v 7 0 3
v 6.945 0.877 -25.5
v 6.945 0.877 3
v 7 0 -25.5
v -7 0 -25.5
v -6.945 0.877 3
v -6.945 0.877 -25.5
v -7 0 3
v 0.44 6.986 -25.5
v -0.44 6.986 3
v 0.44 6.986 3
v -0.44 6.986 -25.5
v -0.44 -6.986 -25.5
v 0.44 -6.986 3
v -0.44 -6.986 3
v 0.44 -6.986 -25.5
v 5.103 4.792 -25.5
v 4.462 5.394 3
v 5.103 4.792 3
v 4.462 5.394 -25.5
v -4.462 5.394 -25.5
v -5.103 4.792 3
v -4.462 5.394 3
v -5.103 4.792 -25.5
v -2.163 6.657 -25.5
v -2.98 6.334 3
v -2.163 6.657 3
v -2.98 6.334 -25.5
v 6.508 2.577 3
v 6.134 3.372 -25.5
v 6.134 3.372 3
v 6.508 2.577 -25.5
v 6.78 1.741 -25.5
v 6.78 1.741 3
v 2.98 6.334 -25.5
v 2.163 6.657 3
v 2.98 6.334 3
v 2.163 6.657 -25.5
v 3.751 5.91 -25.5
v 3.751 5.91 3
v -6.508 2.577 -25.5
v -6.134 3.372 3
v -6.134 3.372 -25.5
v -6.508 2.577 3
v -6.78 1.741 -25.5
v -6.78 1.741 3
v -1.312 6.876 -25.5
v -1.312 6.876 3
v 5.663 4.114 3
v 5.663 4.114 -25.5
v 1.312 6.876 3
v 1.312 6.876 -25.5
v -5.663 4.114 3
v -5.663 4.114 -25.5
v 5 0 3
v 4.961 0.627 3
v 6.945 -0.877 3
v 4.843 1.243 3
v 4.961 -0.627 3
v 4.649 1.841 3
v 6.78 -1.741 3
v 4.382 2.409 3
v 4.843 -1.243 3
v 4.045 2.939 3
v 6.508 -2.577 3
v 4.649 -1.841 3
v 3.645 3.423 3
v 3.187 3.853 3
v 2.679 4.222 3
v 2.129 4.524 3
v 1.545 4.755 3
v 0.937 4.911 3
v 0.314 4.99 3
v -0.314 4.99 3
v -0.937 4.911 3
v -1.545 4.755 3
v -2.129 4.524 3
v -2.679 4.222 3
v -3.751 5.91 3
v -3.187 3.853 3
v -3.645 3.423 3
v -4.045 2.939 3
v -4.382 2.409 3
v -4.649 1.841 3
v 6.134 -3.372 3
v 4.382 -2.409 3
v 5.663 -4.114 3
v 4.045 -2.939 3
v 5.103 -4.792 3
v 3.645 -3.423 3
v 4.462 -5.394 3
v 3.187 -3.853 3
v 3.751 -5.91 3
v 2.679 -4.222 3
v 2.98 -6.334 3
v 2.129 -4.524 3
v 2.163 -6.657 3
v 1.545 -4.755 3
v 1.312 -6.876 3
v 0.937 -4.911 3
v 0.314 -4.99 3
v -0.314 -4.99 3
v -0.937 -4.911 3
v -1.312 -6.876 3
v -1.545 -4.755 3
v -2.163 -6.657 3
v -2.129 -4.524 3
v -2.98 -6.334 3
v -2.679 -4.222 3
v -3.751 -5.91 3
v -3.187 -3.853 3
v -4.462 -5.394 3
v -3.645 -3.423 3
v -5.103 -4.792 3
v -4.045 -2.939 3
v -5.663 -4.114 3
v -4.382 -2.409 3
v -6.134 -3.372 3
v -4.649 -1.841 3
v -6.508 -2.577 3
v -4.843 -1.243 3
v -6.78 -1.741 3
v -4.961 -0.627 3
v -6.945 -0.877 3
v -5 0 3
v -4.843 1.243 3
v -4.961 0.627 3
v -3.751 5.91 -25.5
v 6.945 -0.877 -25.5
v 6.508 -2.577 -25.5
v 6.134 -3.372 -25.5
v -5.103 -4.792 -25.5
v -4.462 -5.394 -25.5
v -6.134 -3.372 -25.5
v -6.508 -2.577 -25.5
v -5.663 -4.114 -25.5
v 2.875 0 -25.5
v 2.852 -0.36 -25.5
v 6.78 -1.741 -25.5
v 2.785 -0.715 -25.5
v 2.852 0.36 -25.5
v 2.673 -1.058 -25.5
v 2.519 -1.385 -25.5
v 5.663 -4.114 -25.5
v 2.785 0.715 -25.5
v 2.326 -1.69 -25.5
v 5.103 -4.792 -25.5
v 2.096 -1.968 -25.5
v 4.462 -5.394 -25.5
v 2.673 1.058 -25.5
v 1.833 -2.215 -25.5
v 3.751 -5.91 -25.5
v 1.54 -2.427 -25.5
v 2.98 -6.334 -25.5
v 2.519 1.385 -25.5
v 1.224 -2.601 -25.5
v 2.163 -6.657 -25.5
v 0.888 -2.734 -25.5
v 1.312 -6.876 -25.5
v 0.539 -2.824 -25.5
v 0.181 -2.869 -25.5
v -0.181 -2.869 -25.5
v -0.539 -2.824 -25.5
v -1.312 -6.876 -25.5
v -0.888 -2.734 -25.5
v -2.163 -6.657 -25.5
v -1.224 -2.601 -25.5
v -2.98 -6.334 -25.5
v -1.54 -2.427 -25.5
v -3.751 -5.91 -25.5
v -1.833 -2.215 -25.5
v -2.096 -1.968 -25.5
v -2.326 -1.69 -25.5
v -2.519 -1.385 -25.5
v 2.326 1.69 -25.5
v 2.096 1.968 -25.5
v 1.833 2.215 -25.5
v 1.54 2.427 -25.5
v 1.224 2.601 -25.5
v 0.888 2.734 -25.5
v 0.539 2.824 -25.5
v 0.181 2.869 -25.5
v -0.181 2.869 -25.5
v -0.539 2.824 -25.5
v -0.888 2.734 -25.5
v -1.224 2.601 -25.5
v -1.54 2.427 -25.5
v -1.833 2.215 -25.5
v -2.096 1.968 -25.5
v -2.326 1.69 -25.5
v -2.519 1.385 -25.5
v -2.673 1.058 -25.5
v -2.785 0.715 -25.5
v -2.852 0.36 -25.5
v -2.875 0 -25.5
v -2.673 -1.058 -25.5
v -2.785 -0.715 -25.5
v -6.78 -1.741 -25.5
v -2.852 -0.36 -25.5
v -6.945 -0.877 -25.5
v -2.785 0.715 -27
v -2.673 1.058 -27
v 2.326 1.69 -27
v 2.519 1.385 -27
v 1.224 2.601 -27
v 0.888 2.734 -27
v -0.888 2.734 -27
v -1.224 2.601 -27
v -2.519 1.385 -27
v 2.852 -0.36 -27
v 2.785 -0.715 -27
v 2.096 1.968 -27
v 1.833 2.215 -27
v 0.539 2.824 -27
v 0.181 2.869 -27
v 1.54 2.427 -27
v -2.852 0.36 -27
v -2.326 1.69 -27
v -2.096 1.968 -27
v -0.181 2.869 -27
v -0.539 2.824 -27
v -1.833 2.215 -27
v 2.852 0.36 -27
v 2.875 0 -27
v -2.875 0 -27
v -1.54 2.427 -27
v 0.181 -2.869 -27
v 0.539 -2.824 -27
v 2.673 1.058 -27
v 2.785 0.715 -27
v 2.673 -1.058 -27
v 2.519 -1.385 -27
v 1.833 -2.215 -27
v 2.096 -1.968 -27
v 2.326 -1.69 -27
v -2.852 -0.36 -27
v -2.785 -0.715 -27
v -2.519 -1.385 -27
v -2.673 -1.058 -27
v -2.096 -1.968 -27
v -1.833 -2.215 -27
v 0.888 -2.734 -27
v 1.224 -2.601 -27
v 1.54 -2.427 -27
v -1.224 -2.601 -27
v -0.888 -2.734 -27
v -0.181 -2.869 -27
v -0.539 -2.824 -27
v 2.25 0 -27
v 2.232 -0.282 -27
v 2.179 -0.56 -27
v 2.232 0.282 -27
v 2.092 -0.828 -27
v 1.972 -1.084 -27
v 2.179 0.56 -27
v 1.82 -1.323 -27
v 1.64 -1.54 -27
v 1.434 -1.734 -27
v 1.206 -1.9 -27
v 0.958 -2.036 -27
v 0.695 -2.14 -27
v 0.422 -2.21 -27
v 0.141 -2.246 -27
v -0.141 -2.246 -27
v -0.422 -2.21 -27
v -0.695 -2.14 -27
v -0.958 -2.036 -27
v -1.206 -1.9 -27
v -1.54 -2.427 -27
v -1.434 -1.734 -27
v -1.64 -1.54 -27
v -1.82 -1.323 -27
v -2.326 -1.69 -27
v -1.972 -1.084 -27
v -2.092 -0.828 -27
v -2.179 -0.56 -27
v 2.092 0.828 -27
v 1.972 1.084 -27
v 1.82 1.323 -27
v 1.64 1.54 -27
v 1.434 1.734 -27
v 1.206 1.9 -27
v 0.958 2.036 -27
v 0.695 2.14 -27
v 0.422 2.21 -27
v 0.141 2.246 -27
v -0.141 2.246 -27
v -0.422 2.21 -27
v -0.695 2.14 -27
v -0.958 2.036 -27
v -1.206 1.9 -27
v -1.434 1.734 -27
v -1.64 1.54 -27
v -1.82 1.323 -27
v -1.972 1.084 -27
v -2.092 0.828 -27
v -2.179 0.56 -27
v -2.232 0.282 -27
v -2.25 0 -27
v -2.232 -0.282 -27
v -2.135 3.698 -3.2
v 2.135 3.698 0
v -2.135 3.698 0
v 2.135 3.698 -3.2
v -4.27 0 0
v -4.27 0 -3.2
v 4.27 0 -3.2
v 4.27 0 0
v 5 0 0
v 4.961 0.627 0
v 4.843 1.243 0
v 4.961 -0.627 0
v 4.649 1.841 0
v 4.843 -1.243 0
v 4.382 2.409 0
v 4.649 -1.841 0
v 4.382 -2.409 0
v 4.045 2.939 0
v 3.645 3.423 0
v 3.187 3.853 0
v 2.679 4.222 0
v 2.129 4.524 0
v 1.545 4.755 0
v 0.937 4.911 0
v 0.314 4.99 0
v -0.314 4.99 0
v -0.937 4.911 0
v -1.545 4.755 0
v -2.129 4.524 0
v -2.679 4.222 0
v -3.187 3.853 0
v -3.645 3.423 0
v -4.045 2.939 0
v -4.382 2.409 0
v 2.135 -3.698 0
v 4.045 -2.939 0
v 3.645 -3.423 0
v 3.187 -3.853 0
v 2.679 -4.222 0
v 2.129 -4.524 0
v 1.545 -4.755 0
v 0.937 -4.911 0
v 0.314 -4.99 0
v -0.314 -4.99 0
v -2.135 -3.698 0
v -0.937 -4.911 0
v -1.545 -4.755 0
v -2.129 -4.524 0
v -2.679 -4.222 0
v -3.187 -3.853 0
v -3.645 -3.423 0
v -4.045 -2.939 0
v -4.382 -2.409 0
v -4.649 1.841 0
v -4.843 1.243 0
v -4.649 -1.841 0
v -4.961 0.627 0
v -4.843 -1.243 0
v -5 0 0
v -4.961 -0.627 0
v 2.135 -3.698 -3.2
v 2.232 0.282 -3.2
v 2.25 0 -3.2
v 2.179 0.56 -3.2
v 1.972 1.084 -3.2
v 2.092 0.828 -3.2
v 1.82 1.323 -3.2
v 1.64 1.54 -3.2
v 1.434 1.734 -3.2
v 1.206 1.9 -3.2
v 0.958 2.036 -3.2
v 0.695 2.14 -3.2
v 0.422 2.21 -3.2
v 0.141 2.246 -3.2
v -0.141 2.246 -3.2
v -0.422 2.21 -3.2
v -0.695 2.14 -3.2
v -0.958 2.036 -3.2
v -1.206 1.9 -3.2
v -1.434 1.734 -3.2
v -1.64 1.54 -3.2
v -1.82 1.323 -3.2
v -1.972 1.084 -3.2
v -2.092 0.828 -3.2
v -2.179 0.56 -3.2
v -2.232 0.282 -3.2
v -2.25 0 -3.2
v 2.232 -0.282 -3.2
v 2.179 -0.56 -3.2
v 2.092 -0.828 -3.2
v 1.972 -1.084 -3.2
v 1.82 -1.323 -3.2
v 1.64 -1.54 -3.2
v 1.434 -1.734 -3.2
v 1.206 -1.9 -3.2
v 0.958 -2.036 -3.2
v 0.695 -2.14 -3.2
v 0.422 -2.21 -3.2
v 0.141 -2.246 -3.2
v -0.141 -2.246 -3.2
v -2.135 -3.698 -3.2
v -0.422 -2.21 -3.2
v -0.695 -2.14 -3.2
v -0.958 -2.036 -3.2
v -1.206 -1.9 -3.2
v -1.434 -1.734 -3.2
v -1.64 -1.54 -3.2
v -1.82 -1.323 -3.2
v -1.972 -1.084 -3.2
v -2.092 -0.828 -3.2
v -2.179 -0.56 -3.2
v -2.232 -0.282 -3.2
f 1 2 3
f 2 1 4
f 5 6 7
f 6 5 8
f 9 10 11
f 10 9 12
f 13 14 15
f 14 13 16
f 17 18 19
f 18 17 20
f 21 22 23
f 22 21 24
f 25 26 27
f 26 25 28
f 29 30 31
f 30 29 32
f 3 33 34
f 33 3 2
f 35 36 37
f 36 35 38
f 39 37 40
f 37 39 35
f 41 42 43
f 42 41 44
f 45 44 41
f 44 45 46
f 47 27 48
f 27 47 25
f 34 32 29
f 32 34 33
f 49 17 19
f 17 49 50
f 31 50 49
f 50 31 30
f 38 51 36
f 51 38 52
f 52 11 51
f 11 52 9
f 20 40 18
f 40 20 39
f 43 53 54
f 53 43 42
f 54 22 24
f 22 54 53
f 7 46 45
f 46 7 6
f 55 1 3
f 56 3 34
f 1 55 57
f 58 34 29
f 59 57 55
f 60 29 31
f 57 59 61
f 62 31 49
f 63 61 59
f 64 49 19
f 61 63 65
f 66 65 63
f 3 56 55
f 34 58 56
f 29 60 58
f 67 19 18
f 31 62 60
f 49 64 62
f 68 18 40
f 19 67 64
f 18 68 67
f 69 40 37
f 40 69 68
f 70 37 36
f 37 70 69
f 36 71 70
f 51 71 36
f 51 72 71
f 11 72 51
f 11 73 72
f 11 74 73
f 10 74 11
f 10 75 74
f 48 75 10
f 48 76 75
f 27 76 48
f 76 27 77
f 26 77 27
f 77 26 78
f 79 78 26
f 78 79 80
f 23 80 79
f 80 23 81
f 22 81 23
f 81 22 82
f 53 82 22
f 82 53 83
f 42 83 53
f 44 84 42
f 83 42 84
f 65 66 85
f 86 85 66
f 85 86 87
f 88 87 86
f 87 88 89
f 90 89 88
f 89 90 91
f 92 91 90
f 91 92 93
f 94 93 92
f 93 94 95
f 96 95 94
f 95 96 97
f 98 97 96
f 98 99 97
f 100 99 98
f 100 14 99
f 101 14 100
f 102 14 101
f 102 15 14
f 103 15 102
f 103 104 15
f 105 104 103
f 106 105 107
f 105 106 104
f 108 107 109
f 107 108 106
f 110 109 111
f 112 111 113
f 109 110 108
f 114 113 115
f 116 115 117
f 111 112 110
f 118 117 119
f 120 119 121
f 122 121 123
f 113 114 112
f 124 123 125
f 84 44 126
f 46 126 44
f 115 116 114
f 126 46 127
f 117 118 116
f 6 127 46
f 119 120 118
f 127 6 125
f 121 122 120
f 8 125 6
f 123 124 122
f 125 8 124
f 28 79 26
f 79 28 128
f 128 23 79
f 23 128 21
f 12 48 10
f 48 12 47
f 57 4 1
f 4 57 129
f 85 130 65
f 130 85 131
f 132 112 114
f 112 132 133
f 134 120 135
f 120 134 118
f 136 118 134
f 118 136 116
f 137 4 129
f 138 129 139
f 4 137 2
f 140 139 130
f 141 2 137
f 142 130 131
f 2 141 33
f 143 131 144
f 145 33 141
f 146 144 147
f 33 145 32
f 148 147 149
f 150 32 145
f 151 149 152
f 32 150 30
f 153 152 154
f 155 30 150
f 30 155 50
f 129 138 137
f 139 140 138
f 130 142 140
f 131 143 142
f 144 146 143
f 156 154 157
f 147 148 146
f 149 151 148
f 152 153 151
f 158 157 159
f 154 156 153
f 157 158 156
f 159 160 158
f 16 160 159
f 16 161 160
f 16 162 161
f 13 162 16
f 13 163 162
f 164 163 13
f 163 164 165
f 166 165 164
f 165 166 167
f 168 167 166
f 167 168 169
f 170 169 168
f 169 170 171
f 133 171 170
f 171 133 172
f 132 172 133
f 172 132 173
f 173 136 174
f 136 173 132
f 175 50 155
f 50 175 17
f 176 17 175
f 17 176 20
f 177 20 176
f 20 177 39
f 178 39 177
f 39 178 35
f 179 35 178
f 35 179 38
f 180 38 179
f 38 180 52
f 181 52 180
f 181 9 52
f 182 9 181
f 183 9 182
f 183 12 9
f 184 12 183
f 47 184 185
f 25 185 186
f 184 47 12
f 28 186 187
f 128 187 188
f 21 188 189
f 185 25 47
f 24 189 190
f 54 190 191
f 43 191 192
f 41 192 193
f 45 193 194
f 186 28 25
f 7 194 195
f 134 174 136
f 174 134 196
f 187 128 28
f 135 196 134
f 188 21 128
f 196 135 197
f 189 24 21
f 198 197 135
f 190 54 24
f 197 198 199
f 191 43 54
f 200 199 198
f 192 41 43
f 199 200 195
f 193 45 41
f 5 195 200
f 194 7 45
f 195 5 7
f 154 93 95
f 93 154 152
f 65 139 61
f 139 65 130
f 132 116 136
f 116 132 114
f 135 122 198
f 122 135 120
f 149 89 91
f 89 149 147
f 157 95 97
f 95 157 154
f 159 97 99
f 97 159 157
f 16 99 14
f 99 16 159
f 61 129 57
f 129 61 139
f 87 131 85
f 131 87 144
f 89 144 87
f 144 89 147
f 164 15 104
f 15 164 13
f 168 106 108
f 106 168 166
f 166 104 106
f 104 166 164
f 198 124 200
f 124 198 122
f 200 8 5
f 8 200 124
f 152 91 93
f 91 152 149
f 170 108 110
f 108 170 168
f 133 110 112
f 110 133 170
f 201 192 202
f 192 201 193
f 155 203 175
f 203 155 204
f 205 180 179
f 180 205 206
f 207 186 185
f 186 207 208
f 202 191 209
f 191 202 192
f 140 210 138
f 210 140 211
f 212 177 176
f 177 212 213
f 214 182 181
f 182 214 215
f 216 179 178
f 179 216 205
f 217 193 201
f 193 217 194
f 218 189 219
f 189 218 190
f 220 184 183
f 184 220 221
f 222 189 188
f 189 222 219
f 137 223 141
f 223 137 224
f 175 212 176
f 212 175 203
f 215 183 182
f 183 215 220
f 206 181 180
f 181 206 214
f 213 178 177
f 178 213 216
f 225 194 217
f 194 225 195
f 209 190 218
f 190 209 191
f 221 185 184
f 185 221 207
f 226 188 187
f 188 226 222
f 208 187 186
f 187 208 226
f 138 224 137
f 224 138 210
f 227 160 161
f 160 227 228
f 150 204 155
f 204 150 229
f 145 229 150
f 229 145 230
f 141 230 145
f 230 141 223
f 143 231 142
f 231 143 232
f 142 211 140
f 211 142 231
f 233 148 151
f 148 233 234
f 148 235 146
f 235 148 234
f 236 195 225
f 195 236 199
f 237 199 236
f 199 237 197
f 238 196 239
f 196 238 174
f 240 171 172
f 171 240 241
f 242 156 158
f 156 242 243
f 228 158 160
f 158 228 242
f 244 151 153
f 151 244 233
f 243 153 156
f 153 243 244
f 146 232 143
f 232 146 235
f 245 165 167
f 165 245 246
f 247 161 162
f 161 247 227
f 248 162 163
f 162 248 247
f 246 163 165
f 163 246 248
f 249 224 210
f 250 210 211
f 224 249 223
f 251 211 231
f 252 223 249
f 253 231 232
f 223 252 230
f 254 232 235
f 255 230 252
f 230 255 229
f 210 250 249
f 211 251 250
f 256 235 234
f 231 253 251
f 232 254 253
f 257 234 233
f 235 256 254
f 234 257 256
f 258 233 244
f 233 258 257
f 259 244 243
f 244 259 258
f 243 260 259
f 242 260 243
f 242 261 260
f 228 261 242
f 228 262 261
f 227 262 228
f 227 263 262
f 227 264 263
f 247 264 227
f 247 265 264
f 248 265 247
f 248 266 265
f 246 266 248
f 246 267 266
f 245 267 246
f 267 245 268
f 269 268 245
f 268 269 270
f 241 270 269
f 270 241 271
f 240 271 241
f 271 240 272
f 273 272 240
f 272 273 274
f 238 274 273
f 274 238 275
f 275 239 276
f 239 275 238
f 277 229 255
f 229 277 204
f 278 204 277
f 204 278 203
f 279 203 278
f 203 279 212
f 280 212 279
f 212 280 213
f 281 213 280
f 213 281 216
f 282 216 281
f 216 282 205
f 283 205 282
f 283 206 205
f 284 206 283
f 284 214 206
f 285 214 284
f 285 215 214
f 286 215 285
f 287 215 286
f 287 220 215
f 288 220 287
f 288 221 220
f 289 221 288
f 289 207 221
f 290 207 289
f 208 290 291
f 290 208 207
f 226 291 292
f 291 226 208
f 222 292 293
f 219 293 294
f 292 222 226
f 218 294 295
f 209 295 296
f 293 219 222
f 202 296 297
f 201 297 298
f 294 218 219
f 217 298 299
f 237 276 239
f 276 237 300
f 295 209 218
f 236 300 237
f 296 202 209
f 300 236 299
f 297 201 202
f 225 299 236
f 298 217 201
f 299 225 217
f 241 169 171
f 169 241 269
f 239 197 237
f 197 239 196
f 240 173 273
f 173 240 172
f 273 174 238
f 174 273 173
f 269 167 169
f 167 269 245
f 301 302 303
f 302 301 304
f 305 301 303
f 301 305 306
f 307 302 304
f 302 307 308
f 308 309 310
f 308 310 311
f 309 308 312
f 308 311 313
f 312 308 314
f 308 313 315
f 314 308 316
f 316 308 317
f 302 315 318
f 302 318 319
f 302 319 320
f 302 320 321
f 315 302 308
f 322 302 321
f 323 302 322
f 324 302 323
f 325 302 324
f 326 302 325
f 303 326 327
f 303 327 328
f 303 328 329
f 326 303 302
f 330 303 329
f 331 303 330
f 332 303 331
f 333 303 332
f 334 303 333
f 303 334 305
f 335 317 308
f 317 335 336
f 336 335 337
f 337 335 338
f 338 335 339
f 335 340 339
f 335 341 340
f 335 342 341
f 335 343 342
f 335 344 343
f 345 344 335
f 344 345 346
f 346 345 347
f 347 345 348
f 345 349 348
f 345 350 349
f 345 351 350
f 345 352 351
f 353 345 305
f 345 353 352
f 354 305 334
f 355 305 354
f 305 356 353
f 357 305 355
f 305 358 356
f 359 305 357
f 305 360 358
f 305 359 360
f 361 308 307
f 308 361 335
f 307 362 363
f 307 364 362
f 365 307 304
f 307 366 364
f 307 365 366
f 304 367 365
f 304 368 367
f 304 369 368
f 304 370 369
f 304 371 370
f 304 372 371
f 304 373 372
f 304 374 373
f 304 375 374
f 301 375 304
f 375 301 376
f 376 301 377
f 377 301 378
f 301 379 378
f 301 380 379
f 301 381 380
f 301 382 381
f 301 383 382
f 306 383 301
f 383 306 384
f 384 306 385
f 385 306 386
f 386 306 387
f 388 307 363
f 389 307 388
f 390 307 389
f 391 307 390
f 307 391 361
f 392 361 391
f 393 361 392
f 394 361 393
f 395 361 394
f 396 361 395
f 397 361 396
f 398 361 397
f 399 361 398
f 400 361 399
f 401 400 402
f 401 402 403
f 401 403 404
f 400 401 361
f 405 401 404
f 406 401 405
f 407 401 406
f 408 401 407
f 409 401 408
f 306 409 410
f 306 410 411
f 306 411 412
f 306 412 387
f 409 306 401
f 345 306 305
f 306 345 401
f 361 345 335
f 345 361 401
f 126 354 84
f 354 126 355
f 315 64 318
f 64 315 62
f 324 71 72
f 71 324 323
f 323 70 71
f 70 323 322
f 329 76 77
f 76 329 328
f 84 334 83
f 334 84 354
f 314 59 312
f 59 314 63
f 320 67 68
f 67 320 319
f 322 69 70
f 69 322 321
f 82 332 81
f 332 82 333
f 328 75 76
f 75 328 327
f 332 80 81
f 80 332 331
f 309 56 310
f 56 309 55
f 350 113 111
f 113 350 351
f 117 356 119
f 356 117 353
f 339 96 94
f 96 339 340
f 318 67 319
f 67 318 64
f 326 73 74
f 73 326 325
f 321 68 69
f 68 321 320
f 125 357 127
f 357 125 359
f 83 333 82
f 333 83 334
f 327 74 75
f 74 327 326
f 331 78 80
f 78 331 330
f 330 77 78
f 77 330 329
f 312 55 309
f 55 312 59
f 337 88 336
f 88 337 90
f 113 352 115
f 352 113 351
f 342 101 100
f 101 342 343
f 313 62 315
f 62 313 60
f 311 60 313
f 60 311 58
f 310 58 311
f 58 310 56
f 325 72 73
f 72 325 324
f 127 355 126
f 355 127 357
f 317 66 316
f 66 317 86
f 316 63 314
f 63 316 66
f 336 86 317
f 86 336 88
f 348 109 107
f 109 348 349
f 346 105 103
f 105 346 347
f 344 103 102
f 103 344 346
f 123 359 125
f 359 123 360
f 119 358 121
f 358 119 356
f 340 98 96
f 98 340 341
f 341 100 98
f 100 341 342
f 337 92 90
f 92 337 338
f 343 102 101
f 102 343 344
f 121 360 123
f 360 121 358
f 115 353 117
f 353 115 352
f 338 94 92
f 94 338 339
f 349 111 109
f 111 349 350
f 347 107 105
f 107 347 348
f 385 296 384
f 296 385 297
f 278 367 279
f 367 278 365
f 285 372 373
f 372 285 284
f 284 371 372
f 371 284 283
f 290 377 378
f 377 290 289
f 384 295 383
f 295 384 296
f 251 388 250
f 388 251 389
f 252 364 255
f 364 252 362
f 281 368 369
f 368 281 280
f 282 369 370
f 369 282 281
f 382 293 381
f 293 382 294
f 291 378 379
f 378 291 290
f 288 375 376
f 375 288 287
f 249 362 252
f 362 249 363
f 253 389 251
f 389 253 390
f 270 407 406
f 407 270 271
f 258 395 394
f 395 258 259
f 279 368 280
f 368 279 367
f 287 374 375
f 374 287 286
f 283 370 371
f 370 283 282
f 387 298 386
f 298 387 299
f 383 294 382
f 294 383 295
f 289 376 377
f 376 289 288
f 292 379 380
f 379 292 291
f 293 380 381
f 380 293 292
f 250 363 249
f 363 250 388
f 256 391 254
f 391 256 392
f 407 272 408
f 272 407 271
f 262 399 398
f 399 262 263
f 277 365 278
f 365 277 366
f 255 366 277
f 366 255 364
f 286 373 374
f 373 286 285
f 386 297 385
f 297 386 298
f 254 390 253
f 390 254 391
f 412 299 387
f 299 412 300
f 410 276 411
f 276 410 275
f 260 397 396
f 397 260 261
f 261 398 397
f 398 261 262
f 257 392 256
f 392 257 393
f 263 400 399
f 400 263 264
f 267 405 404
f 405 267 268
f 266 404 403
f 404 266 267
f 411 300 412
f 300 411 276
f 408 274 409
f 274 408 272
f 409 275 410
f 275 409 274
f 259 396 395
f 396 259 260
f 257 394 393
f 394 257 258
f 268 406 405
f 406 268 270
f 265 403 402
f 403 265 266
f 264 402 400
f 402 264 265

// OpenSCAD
$fn = 50;


difference() {
	union() {
		translate(v = [0, 0, -25.5000000000]) {
			cylinder(h = 28.5000000000, r = 7.0000000000);
		}
		#translate(v = [0, 0, -27.0000000000]) {
			cylinder(h = 27, r = 2.8750000000);
		}
	}
	union() {
		translate(v = [0, 0, 0]) {
			rotate(a = [0, 0, 0]) {
				difference() {
					union() {
						translate(v = [0, 0, -3.2000000000]) {
							linear_extrude(height = 3.2000000000) {
								polygon(points = [[4.2698000000, 0.0000000000], [2.1349000000, 3.6977552691], [-2.1349000000, 3.6977552691], [-4.2698000000, 0.0000000000], [-2.1349000000, -3.6977552691], [2.1349000000, -3.6977552691]]);
							}
						}
					}
					union();
				}
			}
		}
		#cylinder(h = 3, r = 5.0000000000);
		#translate(v = [0, 0, -100.0000000000]) {
			cylinder(h = 200, r = 2.2500000000);
		}
	}
}
